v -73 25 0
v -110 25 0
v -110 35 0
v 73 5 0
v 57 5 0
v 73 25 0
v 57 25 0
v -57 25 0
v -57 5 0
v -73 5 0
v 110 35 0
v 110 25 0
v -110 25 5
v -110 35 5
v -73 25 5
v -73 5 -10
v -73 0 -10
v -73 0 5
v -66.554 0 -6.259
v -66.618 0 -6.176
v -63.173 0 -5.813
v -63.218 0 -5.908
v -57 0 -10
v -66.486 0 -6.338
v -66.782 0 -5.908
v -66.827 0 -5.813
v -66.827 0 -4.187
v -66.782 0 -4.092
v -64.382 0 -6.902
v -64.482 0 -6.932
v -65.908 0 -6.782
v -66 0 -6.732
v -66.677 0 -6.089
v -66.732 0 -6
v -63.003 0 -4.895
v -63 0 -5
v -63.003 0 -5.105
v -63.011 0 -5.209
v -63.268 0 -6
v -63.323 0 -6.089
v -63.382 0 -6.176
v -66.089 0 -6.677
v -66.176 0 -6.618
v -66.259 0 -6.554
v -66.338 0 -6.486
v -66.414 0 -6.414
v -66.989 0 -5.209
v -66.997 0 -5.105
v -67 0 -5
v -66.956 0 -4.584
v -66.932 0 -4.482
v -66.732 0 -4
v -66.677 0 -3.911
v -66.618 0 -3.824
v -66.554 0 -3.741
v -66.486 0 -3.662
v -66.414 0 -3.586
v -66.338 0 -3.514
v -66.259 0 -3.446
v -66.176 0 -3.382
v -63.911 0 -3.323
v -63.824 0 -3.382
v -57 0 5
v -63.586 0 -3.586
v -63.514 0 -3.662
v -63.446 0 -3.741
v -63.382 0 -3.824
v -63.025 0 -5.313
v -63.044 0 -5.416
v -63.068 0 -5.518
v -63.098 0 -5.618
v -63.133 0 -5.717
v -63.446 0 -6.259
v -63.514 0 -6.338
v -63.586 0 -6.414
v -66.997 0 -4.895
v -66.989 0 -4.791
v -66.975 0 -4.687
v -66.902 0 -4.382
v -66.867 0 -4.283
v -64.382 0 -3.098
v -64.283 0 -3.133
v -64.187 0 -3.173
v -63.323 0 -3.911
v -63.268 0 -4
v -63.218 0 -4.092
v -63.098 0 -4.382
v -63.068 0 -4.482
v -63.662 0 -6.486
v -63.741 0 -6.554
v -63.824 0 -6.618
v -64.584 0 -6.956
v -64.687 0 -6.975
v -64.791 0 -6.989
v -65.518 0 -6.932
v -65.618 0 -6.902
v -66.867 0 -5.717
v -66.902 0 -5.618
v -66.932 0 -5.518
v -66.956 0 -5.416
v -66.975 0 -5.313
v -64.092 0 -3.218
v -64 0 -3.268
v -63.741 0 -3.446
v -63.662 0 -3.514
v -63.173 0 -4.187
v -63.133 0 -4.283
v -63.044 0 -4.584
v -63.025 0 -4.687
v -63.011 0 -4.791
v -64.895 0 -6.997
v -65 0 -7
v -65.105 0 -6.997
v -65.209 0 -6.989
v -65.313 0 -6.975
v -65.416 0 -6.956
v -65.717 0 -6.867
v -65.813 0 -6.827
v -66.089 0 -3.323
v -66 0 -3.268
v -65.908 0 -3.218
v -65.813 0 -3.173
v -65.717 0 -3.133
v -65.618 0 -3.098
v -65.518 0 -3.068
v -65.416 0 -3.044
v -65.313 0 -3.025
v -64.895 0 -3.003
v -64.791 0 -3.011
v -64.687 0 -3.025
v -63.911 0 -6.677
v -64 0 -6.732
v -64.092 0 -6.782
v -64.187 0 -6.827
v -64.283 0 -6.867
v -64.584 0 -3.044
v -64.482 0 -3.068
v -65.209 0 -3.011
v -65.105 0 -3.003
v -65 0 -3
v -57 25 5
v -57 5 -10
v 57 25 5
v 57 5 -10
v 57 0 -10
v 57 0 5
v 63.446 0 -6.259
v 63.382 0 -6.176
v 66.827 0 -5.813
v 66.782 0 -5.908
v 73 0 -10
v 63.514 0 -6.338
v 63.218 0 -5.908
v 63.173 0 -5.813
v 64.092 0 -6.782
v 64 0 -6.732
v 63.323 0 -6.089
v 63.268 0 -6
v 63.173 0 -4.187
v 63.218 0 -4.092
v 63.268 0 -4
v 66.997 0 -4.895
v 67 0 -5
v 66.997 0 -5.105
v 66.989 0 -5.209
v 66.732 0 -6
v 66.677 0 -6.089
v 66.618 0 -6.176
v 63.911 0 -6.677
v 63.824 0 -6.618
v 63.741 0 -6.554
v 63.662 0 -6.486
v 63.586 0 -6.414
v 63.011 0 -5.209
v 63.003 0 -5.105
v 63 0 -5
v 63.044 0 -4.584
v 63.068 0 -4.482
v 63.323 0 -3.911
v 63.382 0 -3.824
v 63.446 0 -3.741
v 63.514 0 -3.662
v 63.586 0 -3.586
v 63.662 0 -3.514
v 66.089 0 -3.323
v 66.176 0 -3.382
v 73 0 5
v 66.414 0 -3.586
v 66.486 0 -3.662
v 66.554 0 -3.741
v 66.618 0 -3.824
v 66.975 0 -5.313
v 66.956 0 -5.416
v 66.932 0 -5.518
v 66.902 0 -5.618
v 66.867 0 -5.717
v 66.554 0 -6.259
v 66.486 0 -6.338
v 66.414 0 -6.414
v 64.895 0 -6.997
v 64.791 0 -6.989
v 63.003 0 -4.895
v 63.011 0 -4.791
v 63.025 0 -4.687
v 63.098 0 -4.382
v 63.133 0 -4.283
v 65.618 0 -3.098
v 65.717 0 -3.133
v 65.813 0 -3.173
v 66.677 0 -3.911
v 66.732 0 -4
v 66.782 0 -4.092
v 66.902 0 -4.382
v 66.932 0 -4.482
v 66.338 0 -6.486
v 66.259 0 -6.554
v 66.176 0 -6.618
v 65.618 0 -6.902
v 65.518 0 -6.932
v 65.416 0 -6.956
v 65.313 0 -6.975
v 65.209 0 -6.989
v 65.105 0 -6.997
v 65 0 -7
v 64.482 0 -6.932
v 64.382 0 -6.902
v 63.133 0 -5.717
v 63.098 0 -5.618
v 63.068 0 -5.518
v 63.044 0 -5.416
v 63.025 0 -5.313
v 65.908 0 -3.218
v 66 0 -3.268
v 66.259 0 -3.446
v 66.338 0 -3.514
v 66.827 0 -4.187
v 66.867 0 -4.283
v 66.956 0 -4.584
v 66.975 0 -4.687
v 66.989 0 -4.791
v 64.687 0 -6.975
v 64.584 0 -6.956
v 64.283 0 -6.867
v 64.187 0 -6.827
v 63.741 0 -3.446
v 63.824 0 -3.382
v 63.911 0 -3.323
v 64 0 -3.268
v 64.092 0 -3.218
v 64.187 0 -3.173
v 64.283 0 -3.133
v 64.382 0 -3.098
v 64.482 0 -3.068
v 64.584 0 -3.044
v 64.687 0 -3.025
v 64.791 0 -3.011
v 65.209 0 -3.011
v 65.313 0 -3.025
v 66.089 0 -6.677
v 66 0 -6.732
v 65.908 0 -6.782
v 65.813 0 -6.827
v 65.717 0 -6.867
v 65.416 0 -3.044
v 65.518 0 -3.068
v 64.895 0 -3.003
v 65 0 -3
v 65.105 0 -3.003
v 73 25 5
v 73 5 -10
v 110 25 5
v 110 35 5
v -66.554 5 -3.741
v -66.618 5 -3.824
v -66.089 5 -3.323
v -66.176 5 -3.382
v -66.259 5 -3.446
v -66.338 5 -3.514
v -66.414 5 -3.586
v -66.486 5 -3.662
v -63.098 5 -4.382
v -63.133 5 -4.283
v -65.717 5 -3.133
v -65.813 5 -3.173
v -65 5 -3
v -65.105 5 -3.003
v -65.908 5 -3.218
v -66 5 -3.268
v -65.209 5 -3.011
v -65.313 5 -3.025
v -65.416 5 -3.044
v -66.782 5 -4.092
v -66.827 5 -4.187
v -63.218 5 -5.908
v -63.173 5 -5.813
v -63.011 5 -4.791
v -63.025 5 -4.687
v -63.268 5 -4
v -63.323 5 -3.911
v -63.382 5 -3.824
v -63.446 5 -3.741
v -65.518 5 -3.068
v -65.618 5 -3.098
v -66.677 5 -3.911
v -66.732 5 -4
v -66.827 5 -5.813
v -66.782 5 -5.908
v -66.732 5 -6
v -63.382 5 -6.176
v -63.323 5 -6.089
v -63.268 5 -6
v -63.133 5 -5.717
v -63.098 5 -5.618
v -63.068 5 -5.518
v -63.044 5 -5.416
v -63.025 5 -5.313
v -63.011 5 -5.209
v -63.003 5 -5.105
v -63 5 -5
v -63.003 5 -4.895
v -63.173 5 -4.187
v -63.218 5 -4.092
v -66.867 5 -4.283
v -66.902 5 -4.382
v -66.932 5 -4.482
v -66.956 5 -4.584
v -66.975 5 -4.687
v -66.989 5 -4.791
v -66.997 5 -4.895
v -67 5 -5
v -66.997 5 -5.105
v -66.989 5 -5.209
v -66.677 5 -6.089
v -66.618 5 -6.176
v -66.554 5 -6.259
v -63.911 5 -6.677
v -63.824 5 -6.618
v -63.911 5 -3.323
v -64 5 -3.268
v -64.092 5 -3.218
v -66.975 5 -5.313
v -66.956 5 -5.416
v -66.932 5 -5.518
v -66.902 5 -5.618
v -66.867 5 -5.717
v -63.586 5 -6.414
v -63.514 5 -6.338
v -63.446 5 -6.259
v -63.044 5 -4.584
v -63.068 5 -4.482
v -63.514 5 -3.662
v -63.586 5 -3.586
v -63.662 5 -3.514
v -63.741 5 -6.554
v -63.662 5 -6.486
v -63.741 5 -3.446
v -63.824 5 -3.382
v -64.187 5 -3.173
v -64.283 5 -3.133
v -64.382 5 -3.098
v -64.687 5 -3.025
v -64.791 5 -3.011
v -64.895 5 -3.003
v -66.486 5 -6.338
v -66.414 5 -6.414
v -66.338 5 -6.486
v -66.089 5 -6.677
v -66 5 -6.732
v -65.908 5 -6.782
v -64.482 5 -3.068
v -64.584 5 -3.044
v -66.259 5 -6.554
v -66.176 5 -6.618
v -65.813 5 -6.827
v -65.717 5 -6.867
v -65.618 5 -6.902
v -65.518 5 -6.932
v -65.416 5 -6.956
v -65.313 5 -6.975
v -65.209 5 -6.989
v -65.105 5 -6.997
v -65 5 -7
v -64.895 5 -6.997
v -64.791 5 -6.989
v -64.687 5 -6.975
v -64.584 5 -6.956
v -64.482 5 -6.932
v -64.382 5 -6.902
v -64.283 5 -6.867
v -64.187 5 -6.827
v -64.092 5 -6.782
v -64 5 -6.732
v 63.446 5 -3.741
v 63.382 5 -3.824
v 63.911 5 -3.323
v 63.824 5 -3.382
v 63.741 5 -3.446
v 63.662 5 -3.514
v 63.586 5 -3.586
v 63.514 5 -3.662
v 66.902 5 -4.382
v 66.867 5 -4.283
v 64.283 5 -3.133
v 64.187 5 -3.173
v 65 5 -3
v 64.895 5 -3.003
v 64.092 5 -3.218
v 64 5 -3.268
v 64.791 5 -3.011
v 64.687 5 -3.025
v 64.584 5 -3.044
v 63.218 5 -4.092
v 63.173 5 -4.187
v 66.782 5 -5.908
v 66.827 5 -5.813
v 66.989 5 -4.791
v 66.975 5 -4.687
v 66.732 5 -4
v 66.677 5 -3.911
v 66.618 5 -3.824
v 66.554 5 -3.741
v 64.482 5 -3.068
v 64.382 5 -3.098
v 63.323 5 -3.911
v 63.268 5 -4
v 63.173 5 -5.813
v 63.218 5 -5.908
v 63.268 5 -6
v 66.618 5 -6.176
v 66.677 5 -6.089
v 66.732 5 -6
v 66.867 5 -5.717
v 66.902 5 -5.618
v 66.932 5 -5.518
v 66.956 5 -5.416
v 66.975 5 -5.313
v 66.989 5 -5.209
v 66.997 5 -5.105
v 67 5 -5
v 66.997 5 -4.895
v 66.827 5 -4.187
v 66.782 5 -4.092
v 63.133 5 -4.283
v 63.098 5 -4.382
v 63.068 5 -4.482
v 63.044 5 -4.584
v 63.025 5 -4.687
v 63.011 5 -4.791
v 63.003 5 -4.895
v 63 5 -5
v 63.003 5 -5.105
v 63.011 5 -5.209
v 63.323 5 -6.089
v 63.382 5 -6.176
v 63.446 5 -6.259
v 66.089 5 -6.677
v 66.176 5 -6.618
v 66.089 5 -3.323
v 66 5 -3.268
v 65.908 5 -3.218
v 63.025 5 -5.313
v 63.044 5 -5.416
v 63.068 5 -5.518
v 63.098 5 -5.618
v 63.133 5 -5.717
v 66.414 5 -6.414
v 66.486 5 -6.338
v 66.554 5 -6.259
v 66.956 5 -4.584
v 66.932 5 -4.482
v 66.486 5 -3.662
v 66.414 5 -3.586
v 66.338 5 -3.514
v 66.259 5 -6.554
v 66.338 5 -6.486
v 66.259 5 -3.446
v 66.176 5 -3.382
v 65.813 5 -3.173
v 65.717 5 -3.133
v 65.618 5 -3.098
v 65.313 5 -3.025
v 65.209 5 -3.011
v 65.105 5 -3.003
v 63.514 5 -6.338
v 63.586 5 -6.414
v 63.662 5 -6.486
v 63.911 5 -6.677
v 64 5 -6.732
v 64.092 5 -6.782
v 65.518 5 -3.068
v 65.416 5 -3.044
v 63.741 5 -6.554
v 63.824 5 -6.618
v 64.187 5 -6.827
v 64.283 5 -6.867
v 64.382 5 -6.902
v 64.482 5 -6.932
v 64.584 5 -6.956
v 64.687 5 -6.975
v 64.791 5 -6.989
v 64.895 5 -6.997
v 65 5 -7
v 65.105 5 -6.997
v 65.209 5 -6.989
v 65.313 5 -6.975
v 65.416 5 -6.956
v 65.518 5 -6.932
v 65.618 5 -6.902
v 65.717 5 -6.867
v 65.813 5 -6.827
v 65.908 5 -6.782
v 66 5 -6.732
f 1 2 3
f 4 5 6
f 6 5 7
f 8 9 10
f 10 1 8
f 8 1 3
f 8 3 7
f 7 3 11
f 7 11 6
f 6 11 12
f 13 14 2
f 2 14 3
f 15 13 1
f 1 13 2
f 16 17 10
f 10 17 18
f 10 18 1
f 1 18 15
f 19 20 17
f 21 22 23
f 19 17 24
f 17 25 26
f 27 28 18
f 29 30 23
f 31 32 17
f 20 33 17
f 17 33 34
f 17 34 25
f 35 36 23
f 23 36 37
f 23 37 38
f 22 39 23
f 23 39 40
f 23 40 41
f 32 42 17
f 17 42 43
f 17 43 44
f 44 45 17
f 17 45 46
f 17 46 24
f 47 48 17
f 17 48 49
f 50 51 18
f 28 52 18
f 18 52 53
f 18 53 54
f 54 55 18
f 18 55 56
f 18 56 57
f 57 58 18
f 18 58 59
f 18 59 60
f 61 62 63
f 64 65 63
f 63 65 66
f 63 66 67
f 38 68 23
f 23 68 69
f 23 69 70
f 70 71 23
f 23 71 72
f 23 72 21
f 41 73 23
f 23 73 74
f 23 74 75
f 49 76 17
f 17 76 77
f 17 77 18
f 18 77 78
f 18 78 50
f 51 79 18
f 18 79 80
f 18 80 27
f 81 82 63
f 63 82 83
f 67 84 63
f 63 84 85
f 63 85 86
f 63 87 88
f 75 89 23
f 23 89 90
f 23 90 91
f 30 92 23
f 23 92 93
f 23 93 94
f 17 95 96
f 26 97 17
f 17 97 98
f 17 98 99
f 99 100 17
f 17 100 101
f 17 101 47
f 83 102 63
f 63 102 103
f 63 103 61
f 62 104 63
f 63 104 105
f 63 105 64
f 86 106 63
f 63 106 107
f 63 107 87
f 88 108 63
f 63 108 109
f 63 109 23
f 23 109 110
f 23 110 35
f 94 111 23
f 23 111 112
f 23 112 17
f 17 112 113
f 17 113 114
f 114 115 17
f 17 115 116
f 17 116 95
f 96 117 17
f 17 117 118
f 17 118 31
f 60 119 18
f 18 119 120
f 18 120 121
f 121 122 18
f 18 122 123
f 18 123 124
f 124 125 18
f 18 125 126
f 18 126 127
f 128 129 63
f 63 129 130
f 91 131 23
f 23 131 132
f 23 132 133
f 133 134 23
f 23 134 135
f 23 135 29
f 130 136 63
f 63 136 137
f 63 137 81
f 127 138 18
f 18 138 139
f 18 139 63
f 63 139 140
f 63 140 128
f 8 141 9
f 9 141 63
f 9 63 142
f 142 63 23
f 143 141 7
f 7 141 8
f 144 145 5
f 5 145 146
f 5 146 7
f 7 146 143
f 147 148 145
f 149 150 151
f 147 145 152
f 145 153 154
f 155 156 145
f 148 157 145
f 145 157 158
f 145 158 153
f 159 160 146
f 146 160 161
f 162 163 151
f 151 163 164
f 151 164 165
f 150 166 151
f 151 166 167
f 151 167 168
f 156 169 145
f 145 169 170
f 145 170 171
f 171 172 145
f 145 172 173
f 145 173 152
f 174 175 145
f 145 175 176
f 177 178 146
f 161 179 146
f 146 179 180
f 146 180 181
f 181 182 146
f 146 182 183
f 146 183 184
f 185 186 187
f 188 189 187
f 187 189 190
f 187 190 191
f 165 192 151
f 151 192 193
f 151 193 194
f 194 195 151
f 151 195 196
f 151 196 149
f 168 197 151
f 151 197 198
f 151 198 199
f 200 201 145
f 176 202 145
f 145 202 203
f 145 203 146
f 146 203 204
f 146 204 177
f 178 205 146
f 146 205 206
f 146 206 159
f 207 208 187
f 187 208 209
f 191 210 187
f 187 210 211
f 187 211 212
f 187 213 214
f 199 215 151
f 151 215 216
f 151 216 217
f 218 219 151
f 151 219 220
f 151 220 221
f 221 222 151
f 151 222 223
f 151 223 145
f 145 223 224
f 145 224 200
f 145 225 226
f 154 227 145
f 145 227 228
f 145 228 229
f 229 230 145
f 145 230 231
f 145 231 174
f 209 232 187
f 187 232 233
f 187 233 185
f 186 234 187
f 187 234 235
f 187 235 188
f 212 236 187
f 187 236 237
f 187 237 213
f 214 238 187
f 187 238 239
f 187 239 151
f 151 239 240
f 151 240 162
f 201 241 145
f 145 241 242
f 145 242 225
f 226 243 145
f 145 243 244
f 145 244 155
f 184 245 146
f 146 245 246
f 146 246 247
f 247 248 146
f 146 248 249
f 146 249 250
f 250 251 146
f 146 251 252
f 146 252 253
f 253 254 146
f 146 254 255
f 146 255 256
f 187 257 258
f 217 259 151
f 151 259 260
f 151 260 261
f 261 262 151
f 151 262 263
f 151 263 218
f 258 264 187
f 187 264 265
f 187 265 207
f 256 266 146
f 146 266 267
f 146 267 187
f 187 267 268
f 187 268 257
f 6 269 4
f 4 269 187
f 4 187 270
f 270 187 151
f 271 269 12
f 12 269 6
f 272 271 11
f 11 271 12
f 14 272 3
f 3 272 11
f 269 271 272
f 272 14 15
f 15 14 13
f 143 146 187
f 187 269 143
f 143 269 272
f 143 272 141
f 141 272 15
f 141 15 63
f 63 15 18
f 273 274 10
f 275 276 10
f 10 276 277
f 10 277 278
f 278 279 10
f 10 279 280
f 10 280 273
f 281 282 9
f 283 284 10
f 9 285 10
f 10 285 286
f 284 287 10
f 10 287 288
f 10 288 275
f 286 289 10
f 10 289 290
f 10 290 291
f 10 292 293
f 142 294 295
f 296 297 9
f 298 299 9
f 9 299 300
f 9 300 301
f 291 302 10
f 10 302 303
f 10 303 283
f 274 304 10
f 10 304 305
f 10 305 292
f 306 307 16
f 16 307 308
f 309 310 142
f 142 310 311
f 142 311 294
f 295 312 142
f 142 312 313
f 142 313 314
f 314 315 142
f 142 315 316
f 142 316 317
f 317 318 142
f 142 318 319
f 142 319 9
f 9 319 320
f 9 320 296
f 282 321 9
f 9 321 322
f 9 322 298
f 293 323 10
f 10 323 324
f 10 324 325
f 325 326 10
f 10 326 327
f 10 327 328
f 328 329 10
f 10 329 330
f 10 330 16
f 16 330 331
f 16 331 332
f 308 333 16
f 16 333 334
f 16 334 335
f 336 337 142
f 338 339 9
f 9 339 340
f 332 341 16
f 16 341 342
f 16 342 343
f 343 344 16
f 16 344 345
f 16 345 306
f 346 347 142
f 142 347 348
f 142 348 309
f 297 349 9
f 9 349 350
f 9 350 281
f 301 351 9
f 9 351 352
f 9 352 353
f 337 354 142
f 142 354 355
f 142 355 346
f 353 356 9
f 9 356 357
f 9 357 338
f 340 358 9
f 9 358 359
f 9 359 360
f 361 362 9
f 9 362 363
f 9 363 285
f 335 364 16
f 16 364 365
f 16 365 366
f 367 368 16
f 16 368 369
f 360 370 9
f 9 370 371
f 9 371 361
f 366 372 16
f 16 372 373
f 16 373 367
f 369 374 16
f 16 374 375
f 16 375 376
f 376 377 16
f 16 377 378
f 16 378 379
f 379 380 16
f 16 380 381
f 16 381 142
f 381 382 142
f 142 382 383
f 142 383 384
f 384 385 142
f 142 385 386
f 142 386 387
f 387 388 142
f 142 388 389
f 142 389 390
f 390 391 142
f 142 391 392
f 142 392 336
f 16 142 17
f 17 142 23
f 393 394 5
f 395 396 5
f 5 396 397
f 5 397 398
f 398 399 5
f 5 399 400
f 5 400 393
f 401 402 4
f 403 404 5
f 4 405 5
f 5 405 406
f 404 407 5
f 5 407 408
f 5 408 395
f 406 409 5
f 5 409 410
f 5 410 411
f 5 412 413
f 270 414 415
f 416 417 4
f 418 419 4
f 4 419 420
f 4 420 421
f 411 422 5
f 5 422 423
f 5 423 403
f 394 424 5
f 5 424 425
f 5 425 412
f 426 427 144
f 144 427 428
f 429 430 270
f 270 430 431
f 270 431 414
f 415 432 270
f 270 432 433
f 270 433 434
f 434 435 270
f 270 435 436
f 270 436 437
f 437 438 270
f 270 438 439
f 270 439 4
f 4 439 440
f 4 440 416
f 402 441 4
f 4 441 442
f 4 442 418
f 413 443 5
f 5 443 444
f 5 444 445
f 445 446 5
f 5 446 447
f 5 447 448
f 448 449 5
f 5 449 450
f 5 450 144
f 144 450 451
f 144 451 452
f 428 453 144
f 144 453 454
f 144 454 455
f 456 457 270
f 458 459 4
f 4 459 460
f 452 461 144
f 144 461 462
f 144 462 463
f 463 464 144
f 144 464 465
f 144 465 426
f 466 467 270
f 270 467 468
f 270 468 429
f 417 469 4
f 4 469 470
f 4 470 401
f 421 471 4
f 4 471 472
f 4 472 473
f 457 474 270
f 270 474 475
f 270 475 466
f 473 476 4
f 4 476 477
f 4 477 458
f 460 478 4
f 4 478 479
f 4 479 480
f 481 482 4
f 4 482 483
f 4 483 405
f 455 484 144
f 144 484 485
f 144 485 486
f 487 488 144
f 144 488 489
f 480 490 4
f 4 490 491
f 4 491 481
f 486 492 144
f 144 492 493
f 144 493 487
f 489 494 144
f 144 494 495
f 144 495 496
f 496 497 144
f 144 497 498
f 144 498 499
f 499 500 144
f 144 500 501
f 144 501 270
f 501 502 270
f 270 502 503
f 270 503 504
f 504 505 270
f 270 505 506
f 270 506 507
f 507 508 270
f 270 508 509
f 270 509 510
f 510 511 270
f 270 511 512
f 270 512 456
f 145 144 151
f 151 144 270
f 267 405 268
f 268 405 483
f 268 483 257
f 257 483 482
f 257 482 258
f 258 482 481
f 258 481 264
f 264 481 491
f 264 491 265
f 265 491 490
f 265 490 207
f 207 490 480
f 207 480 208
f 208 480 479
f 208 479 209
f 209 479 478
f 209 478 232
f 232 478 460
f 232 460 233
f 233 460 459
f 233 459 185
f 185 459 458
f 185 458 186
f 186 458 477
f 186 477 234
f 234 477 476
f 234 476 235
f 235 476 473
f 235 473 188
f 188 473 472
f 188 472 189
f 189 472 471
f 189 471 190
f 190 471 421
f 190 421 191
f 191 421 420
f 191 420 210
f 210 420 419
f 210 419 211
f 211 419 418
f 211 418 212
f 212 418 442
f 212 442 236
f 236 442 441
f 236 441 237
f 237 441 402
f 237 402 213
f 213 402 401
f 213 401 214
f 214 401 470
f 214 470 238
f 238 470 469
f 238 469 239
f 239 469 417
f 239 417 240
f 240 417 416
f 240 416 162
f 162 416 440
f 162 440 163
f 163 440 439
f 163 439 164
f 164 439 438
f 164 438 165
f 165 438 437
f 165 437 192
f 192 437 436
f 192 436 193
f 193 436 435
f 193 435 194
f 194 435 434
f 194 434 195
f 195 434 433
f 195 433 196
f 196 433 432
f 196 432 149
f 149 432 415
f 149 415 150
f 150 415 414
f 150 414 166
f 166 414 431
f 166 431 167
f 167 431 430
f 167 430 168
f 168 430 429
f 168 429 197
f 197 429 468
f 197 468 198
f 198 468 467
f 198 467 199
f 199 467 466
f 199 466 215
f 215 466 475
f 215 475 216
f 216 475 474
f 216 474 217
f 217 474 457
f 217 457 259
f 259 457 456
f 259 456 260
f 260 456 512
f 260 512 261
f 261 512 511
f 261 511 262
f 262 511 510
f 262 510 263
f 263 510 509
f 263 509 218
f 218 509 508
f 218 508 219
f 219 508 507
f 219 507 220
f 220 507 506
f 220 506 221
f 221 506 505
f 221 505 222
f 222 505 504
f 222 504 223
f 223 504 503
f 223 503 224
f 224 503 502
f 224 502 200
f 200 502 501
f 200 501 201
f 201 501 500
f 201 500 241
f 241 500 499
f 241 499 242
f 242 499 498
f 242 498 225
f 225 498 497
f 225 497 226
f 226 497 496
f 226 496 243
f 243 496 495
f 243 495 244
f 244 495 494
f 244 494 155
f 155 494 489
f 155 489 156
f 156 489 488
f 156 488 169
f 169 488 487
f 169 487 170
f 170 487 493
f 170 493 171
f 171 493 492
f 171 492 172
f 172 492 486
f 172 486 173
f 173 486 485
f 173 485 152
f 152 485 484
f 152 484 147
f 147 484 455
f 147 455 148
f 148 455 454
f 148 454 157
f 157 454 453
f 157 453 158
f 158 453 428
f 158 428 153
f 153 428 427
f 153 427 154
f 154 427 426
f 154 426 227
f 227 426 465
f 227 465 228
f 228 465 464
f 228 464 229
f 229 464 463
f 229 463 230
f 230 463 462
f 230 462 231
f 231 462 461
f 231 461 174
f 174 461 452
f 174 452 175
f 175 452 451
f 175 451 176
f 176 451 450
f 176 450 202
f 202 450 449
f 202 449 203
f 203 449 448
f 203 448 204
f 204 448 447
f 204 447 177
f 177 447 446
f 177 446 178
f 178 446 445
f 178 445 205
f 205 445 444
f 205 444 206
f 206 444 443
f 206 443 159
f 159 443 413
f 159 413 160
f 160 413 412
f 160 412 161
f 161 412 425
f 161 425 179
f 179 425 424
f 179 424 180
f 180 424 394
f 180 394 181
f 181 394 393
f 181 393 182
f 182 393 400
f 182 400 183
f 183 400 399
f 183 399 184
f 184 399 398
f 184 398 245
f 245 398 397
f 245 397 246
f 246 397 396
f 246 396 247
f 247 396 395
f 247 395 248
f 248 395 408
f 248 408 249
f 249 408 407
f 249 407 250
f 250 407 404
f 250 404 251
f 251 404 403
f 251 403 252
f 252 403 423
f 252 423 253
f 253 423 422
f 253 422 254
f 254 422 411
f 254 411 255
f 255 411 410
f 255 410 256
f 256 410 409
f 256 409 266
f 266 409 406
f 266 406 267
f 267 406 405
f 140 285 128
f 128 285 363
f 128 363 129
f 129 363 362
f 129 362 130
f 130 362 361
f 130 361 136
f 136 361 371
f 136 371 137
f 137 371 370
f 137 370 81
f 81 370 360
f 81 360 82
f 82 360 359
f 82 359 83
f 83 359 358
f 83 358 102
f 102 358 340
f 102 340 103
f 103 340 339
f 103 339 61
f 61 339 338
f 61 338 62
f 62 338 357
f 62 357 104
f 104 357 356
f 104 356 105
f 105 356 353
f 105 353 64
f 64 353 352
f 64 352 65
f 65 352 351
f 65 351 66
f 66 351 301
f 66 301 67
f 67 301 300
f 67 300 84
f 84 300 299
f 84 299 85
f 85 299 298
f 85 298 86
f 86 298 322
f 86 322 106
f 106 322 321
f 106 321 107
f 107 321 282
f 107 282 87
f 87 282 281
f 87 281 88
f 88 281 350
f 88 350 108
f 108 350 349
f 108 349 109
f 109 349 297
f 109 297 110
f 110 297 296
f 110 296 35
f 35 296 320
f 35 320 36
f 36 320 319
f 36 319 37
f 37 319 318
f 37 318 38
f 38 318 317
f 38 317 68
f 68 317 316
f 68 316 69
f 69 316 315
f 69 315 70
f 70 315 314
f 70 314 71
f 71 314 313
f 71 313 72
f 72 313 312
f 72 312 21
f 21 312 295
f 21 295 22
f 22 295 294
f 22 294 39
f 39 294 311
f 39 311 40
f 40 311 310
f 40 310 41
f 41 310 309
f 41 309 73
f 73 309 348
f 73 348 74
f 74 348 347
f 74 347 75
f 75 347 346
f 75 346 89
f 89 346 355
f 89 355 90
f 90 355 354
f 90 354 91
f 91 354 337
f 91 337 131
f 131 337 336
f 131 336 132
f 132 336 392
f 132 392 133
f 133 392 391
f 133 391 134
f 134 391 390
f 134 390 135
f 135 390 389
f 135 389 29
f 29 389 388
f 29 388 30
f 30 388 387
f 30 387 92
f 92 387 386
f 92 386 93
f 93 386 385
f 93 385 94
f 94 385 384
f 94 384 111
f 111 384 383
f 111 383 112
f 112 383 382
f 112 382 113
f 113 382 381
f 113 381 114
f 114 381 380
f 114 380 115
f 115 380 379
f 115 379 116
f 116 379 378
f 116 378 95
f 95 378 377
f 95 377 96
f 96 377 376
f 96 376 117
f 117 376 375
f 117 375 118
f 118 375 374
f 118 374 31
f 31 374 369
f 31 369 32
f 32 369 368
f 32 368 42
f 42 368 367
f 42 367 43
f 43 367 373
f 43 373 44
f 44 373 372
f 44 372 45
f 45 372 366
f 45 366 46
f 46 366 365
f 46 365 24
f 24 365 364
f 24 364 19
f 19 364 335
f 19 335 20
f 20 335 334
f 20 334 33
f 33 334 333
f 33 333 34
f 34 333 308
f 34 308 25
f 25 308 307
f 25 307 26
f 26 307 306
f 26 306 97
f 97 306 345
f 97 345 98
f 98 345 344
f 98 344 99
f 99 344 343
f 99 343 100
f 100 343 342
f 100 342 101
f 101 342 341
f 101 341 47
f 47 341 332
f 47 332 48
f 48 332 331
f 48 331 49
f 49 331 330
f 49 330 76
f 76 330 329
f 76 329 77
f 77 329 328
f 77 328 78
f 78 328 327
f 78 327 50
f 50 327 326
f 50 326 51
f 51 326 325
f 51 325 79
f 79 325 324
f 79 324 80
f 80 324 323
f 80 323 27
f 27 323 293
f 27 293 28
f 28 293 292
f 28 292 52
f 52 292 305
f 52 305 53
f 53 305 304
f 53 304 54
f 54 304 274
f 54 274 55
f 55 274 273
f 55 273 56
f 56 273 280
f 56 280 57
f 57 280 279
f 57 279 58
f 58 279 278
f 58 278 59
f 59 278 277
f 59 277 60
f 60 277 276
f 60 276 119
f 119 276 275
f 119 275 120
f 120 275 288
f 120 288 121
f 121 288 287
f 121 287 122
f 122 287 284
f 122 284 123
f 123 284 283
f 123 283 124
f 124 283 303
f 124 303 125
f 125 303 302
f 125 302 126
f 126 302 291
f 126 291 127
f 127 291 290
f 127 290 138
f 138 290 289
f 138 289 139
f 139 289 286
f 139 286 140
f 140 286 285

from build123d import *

# Parameters (mm, degrees)
SALIENTE_EXTRUIR1_DEPTH = 5
CROQUIS2_W              = 16
CROQUIS2_H              = 5
SALIENTE_EXTRUIR2_DEPTH = 10
CORTAR_EXTRUIR1_REACH   = 7
CROQUIS3_R              = 2


with BuildPart() as part:
    # Croquis1 → Saliente-Extruir1 (new body)
    with BuildSketch(Plane.XY):
        Polygon((-110, 25), (-73, 25), (-73, 0), (-57, 0), (-57, 25), (57, 25), (57, 0), (73, 0), (73, 25), (110, 25), (110, 35), (-110, 35), align=None)
    extrude(amount=SALIENTE_EXTRUIR1_DEPTH)

    # Croquis2 → Saliente-Extruir2 (add)
    with BuildSketch(Plane(origin=(0, 0, 0), x_dir=(-1, 0, 0), z_dir=(0, 0, -1))):
        with Locations((65, 2.5)):
            Rectangle(CROQUIS2_W, CROQUIS2_H)
        with Locations((-65, 2.5)):
            Rectangle(CROQUIS2_W, CROQUIS2_H)
    extrude(amount=SALIENTE_EXTRUIR2_DEPTH)

    # Croquis3 → Cortar-Extruir1 (cut, up to next)
    with BuildSketch(Plane(origin=(0, 5, 0), x_dir=(1, 0, 0), z_dir=(0, 1, 0)), mode=Mode.PRIVATE) as cortar_extruir1_sk1:
        with Locations((65, 5)):
            Circle(CROQUIS3_R)
    cortar_extruir1_tool1 = extrude(cortar_extruir1_sk1.sketch, amount=-CORTAR_EXTRUIR1_REACH, mode=Mode.PRIVATE) & part.part
    add(cortar_extruir1_tool1.solids().sort_by_distance((65, 5, -5))[0], mode=Mode.SUBTRACT)
    # Croquis3 → Cortar-Extruir1 (cut, up to next)
    with BuildSketch(Plane(origin=(0, 5, 0), x_dir=(1, 0, 0), z_dir=(0, 1, 0)), mode=Mode.PRIVATE) as cortar_extruir1_sk2:
        with Locations((-65, 5)):
            Circle(CROQUIS3_R)
    cortar_extruir1_tool2 = extrude(cortar_extruir1_sk2.sketch, amount=-CORTAR_EXTRUIR1_REACH, mode=Mode.PRIVATE) & part.part
    add(cortar_extruir1_tool2.solids().sort_by_distance((-65, 5, -5))[0], mode=Mode.SUBTRACT)


solid = part.part
